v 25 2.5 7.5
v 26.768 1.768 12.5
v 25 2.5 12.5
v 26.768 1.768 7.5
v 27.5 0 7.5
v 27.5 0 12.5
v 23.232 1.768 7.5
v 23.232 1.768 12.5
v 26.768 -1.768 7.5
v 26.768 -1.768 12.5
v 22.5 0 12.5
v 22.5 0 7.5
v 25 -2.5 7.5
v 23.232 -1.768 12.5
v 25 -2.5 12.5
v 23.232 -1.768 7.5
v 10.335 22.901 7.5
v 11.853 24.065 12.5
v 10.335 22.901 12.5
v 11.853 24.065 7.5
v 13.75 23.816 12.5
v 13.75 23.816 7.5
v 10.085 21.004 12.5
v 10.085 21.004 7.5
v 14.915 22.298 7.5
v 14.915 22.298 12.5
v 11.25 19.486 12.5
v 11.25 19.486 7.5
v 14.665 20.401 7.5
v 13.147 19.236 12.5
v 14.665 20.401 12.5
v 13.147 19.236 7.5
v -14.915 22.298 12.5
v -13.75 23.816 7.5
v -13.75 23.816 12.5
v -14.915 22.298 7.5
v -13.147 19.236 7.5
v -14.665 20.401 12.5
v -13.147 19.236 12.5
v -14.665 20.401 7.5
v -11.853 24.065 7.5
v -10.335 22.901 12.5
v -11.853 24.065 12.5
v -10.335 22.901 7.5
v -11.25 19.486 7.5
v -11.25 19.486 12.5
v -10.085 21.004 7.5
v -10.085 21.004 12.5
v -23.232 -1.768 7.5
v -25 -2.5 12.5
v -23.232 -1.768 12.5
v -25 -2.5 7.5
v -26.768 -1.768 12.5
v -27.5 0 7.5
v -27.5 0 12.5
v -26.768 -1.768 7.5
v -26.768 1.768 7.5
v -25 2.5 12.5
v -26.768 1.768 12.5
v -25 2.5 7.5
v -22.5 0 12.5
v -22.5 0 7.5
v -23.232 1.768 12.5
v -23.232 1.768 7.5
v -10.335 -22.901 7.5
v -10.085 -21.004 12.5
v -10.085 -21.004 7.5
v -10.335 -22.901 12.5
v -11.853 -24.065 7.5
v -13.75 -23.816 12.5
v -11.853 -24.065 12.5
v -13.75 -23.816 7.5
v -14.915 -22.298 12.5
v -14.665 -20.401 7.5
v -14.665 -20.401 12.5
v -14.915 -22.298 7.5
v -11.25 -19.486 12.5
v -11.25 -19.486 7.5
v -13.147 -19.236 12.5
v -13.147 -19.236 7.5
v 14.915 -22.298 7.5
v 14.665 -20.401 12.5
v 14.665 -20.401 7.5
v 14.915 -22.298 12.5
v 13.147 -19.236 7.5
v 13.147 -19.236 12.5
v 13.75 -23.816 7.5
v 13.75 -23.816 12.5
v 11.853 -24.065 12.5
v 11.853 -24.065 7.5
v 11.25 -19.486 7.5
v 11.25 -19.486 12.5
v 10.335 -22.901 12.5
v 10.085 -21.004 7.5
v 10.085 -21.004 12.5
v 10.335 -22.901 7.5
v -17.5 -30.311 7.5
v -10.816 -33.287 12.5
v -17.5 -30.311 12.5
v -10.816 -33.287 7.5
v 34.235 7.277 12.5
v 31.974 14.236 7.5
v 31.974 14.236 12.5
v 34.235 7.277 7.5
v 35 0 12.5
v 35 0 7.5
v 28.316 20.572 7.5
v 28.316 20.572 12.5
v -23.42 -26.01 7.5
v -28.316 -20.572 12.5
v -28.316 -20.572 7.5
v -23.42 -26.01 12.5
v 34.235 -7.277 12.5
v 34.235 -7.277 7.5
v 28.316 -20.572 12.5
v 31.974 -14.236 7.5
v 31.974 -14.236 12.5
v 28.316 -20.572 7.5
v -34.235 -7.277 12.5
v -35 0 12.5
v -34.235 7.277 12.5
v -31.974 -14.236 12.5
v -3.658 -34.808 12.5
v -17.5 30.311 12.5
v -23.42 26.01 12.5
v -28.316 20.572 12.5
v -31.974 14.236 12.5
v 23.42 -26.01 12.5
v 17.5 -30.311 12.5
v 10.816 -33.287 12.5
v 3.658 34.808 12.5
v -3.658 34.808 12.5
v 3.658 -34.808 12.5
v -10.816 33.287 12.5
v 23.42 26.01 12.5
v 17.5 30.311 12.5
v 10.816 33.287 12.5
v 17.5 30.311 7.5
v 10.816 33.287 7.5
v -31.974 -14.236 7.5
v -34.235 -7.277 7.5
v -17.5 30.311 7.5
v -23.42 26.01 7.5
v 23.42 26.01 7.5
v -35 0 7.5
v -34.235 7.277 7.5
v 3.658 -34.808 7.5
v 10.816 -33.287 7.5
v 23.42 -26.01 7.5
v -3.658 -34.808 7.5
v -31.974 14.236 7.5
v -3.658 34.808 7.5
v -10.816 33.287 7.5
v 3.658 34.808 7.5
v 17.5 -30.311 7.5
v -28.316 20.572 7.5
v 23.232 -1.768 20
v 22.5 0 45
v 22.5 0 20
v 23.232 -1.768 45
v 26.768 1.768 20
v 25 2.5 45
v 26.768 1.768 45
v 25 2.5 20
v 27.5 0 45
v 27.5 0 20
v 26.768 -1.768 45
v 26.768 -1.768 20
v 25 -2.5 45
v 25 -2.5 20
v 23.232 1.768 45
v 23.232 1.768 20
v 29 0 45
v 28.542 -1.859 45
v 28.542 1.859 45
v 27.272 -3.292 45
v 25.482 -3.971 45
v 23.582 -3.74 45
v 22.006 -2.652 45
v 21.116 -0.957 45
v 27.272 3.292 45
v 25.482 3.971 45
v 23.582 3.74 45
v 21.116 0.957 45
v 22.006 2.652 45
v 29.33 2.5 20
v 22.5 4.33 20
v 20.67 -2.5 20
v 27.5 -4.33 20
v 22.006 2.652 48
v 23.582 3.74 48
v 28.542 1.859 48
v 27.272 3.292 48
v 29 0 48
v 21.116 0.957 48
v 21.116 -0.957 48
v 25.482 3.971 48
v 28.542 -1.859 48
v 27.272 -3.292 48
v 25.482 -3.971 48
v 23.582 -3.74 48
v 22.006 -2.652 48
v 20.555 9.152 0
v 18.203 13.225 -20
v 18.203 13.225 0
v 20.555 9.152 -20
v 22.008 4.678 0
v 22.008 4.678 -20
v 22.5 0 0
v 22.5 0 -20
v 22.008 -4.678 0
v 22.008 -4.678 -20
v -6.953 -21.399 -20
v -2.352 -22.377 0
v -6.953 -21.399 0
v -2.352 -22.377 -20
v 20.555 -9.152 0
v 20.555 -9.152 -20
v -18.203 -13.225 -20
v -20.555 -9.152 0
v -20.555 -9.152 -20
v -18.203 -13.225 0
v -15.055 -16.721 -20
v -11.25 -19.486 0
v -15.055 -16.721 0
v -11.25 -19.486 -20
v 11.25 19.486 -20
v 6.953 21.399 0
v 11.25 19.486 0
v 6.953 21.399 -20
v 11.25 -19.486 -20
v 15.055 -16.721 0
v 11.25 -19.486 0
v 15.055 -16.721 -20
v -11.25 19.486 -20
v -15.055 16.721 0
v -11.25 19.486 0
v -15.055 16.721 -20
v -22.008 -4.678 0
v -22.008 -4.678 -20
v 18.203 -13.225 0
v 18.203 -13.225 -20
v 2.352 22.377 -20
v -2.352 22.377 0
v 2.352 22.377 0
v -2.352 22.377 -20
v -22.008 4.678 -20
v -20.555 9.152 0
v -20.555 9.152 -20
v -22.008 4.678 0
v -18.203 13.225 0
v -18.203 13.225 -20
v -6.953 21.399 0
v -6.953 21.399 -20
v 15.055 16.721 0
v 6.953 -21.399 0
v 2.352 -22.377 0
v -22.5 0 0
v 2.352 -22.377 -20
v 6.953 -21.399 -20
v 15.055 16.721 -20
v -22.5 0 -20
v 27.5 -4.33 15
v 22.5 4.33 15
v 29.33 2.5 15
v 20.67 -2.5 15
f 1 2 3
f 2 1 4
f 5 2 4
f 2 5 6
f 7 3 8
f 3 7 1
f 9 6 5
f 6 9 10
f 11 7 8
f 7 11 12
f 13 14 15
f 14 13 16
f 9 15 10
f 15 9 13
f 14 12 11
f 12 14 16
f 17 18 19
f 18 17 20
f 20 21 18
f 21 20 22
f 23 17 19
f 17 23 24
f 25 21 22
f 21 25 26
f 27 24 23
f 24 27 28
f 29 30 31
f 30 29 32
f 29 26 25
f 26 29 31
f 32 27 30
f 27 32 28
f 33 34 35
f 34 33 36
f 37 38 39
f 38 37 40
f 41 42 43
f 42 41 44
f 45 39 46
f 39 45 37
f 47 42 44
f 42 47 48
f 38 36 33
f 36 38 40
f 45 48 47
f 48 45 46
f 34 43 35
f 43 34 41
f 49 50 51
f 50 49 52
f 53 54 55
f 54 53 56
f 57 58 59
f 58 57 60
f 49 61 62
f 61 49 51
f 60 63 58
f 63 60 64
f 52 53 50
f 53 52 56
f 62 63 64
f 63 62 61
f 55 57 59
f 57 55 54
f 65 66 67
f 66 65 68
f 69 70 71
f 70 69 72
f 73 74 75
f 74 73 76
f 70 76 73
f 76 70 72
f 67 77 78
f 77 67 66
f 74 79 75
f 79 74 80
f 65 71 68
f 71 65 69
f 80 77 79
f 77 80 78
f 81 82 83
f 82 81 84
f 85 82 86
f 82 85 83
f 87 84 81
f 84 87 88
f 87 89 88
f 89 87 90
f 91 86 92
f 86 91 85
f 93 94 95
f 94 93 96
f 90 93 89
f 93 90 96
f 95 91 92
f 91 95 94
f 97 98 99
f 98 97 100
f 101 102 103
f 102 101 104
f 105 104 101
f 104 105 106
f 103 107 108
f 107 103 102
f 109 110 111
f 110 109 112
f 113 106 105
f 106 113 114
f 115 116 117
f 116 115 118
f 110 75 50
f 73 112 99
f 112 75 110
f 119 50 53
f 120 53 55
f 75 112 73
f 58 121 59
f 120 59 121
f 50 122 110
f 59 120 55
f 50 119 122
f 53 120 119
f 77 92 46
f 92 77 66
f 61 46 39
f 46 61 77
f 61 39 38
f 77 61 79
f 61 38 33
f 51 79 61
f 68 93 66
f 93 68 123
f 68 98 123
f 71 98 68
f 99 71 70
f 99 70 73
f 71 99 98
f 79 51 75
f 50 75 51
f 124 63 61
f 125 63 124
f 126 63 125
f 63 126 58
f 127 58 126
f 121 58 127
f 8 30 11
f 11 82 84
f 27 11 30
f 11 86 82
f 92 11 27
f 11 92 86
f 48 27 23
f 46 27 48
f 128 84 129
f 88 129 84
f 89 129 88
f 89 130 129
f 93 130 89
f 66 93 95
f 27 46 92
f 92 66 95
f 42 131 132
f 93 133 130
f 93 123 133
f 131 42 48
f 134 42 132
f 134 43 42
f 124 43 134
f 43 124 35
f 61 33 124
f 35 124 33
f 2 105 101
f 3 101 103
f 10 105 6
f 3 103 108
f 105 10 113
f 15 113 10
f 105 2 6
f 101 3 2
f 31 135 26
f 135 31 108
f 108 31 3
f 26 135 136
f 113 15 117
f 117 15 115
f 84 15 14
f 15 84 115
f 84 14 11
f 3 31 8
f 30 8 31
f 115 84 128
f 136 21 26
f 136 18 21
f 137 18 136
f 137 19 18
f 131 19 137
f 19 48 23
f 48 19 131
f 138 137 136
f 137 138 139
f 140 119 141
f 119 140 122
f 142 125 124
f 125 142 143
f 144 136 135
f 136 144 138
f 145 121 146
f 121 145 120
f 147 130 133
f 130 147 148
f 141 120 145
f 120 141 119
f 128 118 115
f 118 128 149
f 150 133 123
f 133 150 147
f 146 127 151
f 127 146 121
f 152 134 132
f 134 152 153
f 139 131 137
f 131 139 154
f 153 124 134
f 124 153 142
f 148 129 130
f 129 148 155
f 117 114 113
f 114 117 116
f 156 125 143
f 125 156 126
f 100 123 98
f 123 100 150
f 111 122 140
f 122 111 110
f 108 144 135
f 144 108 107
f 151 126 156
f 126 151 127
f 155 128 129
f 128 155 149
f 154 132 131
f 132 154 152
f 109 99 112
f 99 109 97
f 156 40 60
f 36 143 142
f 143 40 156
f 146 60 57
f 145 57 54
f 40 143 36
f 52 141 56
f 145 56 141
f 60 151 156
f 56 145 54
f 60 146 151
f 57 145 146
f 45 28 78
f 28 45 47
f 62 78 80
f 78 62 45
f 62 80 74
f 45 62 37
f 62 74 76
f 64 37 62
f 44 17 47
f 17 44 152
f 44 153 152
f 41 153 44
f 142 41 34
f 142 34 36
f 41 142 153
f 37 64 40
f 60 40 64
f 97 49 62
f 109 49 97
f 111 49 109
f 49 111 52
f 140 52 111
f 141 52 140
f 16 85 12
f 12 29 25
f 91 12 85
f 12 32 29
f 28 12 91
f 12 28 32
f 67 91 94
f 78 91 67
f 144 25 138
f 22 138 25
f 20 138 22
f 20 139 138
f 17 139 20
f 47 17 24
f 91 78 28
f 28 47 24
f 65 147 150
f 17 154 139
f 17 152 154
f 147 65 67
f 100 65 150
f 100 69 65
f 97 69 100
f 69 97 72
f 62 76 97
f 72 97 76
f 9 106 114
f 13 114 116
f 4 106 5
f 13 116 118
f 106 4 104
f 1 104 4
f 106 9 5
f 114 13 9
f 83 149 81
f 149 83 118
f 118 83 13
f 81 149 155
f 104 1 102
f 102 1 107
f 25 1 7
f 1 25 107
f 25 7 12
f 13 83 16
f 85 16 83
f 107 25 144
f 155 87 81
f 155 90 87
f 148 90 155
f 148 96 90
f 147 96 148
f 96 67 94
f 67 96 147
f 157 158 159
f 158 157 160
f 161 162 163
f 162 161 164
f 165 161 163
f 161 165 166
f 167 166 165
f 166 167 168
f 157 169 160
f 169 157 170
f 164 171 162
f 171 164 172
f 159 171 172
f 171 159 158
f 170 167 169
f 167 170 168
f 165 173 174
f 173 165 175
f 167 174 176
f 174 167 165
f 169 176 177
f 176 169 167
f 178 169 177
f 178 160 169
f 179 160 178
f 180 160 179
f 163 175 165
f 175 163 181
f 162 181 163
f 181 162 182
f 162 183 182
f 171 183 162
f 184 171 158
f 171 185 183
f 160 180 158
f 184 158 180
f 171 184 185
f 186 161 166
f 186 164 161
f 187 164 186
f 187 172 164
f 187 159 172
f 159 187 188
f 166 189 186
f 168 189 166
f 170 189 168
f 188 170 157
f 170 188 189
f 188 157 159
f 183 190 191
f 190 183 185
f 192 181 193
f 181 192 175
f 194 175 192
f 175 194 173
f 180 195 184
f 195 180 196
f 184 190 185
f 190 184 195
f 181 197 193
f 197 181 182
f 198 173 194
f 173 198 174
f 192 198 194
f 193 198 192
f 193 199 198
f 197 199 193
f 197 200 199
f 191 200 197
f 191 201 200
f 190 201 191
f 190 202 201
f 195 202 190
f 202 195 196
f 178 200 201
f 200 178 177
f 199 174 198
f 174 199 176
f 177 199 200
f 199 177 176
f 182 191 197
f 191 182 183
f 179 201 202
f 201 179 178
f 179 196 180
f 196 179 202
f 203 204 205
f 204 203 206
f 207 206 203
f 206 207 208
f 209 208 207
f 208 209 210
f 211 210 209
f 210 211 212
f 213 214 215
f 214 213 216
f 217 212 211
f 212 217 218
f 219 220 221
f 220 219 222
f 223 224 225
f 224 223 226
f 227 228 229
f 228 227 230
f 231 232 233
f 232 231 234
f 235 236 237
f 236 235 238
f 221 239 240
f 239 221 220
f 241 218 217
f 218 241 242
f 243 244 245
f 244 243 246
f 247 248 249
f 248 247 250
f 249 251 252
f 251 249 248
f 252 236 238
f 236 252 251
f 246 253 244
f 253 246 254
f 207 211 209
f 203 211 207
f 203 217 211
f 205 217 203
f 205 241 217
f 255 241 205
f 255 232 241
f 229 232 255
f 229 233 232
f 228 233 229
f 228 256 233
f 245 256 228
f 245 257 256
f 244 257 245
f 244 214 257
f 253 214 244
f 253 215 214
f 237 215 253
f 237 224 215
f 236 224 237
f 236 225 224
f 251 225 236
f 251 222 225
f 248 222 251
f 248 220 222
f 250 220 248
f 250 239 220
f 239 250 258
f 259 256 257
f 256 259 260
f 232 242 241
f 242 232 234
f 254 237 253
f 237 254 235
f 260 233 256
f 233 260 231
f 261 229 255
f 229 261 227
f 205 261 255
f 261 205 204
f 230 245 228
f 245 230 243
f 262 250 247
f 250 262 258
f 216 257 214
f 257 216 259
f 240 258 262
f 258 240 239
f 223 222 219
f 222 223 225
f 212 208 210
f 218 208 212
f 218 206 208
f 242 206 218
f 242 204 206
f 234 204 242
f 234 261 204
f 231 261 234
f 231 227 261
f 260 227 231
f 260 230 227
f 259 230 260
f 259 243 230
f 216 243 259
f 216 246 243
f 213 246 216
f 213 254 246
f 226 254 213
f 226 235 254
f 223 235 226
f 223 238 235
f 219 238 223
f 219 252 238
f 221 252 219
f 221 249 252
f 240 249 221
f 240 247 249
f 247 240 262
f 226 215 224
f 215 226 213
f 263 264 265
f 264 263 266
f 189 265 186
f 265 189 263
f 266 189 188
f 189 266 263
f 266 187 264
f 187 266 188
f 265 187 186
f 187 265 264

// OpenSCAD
// Parameters for the central cylinder
cylinder_diameter = 45; // Adjusted diameter to match the original model
cylinder_height = 20;   // Height remains unchanged

// Parameters for the flange plate
flange_diameter = 70;   // Diameter of the flange plate
flange_thickness = 5;   // Reduced thickness to match the original model
bolt_hole_diameter = 5; // Diameter of the bolt holes
bolt_hole_count = 6;    // Number of bolt holes evenly distributed

// Parameters for the nut
nut_diameter = 10;      // Reduced hexagonal profile diameter
nut_height = 5;         // Height of the nut

// Parameters for the bolt
bolt_shaft_diameter = 5; // Diameter of the bolt shaft
bolt_shaft_length = 25;  // Increased shaft length to match the original model
bolt_head_diameter = 8;  // Diameter of the bolt head
bolt_head_height = 3;    // Height of the bolt head

// Central cylinder
module central_cylinder() {
    cylinder(d = cylinder_diameter, h = cylinder_height, center = true);
}

// Flange plate with evenly distributed bolt holes
module flange_plate() {
    difference() {
        cylinder(d = flange_diameter, h = flange_thickness, center = true);
        for (i = [0:360/bolt_hole_count:360-360/bolt_hole_count]) {
            rotate([0, 0, i])
            translate([flange_diameter/2 - 10, 0, 0])
            cylinder(d = bolt_hole_diameter, h = flange_thickness + 1, center = true);
        }
    }
}

// Nut
module nut() {
    rotate([0, 0, 30]) // Align hexagonal profile
    linear_extrude(height = nut_height)
    polygon(points = [[0, nut_diameter/2], [nut_diameter/2, 0], [0, -nut_diameter/2], [-nut_diameter/2, 0]]);
}

// Bolt
module bolt() {
    union() {
        cylinder(d = bolt_shaft_diameter, h = bolt_shaft_length, center = false);
        translate([0, 0, bolt_shaft_length])
        cylinder(d = bolt_head_diameter, h = bolt_head_height, center = false);
    }
}

// Render the components
translate([0, 0, -cylinder_height/2])
central_cylinder();

translate([0, 0, cylinder_height/2])
flange_plate();

translate([flange_diameter/2 - 10, 0, cylinder_height/2 + flange_thickness])
nut();

translate([flange_diameter/2 - 10, 0, cylinder_height/2 + flange_thickness + nut_height])
bolt();
